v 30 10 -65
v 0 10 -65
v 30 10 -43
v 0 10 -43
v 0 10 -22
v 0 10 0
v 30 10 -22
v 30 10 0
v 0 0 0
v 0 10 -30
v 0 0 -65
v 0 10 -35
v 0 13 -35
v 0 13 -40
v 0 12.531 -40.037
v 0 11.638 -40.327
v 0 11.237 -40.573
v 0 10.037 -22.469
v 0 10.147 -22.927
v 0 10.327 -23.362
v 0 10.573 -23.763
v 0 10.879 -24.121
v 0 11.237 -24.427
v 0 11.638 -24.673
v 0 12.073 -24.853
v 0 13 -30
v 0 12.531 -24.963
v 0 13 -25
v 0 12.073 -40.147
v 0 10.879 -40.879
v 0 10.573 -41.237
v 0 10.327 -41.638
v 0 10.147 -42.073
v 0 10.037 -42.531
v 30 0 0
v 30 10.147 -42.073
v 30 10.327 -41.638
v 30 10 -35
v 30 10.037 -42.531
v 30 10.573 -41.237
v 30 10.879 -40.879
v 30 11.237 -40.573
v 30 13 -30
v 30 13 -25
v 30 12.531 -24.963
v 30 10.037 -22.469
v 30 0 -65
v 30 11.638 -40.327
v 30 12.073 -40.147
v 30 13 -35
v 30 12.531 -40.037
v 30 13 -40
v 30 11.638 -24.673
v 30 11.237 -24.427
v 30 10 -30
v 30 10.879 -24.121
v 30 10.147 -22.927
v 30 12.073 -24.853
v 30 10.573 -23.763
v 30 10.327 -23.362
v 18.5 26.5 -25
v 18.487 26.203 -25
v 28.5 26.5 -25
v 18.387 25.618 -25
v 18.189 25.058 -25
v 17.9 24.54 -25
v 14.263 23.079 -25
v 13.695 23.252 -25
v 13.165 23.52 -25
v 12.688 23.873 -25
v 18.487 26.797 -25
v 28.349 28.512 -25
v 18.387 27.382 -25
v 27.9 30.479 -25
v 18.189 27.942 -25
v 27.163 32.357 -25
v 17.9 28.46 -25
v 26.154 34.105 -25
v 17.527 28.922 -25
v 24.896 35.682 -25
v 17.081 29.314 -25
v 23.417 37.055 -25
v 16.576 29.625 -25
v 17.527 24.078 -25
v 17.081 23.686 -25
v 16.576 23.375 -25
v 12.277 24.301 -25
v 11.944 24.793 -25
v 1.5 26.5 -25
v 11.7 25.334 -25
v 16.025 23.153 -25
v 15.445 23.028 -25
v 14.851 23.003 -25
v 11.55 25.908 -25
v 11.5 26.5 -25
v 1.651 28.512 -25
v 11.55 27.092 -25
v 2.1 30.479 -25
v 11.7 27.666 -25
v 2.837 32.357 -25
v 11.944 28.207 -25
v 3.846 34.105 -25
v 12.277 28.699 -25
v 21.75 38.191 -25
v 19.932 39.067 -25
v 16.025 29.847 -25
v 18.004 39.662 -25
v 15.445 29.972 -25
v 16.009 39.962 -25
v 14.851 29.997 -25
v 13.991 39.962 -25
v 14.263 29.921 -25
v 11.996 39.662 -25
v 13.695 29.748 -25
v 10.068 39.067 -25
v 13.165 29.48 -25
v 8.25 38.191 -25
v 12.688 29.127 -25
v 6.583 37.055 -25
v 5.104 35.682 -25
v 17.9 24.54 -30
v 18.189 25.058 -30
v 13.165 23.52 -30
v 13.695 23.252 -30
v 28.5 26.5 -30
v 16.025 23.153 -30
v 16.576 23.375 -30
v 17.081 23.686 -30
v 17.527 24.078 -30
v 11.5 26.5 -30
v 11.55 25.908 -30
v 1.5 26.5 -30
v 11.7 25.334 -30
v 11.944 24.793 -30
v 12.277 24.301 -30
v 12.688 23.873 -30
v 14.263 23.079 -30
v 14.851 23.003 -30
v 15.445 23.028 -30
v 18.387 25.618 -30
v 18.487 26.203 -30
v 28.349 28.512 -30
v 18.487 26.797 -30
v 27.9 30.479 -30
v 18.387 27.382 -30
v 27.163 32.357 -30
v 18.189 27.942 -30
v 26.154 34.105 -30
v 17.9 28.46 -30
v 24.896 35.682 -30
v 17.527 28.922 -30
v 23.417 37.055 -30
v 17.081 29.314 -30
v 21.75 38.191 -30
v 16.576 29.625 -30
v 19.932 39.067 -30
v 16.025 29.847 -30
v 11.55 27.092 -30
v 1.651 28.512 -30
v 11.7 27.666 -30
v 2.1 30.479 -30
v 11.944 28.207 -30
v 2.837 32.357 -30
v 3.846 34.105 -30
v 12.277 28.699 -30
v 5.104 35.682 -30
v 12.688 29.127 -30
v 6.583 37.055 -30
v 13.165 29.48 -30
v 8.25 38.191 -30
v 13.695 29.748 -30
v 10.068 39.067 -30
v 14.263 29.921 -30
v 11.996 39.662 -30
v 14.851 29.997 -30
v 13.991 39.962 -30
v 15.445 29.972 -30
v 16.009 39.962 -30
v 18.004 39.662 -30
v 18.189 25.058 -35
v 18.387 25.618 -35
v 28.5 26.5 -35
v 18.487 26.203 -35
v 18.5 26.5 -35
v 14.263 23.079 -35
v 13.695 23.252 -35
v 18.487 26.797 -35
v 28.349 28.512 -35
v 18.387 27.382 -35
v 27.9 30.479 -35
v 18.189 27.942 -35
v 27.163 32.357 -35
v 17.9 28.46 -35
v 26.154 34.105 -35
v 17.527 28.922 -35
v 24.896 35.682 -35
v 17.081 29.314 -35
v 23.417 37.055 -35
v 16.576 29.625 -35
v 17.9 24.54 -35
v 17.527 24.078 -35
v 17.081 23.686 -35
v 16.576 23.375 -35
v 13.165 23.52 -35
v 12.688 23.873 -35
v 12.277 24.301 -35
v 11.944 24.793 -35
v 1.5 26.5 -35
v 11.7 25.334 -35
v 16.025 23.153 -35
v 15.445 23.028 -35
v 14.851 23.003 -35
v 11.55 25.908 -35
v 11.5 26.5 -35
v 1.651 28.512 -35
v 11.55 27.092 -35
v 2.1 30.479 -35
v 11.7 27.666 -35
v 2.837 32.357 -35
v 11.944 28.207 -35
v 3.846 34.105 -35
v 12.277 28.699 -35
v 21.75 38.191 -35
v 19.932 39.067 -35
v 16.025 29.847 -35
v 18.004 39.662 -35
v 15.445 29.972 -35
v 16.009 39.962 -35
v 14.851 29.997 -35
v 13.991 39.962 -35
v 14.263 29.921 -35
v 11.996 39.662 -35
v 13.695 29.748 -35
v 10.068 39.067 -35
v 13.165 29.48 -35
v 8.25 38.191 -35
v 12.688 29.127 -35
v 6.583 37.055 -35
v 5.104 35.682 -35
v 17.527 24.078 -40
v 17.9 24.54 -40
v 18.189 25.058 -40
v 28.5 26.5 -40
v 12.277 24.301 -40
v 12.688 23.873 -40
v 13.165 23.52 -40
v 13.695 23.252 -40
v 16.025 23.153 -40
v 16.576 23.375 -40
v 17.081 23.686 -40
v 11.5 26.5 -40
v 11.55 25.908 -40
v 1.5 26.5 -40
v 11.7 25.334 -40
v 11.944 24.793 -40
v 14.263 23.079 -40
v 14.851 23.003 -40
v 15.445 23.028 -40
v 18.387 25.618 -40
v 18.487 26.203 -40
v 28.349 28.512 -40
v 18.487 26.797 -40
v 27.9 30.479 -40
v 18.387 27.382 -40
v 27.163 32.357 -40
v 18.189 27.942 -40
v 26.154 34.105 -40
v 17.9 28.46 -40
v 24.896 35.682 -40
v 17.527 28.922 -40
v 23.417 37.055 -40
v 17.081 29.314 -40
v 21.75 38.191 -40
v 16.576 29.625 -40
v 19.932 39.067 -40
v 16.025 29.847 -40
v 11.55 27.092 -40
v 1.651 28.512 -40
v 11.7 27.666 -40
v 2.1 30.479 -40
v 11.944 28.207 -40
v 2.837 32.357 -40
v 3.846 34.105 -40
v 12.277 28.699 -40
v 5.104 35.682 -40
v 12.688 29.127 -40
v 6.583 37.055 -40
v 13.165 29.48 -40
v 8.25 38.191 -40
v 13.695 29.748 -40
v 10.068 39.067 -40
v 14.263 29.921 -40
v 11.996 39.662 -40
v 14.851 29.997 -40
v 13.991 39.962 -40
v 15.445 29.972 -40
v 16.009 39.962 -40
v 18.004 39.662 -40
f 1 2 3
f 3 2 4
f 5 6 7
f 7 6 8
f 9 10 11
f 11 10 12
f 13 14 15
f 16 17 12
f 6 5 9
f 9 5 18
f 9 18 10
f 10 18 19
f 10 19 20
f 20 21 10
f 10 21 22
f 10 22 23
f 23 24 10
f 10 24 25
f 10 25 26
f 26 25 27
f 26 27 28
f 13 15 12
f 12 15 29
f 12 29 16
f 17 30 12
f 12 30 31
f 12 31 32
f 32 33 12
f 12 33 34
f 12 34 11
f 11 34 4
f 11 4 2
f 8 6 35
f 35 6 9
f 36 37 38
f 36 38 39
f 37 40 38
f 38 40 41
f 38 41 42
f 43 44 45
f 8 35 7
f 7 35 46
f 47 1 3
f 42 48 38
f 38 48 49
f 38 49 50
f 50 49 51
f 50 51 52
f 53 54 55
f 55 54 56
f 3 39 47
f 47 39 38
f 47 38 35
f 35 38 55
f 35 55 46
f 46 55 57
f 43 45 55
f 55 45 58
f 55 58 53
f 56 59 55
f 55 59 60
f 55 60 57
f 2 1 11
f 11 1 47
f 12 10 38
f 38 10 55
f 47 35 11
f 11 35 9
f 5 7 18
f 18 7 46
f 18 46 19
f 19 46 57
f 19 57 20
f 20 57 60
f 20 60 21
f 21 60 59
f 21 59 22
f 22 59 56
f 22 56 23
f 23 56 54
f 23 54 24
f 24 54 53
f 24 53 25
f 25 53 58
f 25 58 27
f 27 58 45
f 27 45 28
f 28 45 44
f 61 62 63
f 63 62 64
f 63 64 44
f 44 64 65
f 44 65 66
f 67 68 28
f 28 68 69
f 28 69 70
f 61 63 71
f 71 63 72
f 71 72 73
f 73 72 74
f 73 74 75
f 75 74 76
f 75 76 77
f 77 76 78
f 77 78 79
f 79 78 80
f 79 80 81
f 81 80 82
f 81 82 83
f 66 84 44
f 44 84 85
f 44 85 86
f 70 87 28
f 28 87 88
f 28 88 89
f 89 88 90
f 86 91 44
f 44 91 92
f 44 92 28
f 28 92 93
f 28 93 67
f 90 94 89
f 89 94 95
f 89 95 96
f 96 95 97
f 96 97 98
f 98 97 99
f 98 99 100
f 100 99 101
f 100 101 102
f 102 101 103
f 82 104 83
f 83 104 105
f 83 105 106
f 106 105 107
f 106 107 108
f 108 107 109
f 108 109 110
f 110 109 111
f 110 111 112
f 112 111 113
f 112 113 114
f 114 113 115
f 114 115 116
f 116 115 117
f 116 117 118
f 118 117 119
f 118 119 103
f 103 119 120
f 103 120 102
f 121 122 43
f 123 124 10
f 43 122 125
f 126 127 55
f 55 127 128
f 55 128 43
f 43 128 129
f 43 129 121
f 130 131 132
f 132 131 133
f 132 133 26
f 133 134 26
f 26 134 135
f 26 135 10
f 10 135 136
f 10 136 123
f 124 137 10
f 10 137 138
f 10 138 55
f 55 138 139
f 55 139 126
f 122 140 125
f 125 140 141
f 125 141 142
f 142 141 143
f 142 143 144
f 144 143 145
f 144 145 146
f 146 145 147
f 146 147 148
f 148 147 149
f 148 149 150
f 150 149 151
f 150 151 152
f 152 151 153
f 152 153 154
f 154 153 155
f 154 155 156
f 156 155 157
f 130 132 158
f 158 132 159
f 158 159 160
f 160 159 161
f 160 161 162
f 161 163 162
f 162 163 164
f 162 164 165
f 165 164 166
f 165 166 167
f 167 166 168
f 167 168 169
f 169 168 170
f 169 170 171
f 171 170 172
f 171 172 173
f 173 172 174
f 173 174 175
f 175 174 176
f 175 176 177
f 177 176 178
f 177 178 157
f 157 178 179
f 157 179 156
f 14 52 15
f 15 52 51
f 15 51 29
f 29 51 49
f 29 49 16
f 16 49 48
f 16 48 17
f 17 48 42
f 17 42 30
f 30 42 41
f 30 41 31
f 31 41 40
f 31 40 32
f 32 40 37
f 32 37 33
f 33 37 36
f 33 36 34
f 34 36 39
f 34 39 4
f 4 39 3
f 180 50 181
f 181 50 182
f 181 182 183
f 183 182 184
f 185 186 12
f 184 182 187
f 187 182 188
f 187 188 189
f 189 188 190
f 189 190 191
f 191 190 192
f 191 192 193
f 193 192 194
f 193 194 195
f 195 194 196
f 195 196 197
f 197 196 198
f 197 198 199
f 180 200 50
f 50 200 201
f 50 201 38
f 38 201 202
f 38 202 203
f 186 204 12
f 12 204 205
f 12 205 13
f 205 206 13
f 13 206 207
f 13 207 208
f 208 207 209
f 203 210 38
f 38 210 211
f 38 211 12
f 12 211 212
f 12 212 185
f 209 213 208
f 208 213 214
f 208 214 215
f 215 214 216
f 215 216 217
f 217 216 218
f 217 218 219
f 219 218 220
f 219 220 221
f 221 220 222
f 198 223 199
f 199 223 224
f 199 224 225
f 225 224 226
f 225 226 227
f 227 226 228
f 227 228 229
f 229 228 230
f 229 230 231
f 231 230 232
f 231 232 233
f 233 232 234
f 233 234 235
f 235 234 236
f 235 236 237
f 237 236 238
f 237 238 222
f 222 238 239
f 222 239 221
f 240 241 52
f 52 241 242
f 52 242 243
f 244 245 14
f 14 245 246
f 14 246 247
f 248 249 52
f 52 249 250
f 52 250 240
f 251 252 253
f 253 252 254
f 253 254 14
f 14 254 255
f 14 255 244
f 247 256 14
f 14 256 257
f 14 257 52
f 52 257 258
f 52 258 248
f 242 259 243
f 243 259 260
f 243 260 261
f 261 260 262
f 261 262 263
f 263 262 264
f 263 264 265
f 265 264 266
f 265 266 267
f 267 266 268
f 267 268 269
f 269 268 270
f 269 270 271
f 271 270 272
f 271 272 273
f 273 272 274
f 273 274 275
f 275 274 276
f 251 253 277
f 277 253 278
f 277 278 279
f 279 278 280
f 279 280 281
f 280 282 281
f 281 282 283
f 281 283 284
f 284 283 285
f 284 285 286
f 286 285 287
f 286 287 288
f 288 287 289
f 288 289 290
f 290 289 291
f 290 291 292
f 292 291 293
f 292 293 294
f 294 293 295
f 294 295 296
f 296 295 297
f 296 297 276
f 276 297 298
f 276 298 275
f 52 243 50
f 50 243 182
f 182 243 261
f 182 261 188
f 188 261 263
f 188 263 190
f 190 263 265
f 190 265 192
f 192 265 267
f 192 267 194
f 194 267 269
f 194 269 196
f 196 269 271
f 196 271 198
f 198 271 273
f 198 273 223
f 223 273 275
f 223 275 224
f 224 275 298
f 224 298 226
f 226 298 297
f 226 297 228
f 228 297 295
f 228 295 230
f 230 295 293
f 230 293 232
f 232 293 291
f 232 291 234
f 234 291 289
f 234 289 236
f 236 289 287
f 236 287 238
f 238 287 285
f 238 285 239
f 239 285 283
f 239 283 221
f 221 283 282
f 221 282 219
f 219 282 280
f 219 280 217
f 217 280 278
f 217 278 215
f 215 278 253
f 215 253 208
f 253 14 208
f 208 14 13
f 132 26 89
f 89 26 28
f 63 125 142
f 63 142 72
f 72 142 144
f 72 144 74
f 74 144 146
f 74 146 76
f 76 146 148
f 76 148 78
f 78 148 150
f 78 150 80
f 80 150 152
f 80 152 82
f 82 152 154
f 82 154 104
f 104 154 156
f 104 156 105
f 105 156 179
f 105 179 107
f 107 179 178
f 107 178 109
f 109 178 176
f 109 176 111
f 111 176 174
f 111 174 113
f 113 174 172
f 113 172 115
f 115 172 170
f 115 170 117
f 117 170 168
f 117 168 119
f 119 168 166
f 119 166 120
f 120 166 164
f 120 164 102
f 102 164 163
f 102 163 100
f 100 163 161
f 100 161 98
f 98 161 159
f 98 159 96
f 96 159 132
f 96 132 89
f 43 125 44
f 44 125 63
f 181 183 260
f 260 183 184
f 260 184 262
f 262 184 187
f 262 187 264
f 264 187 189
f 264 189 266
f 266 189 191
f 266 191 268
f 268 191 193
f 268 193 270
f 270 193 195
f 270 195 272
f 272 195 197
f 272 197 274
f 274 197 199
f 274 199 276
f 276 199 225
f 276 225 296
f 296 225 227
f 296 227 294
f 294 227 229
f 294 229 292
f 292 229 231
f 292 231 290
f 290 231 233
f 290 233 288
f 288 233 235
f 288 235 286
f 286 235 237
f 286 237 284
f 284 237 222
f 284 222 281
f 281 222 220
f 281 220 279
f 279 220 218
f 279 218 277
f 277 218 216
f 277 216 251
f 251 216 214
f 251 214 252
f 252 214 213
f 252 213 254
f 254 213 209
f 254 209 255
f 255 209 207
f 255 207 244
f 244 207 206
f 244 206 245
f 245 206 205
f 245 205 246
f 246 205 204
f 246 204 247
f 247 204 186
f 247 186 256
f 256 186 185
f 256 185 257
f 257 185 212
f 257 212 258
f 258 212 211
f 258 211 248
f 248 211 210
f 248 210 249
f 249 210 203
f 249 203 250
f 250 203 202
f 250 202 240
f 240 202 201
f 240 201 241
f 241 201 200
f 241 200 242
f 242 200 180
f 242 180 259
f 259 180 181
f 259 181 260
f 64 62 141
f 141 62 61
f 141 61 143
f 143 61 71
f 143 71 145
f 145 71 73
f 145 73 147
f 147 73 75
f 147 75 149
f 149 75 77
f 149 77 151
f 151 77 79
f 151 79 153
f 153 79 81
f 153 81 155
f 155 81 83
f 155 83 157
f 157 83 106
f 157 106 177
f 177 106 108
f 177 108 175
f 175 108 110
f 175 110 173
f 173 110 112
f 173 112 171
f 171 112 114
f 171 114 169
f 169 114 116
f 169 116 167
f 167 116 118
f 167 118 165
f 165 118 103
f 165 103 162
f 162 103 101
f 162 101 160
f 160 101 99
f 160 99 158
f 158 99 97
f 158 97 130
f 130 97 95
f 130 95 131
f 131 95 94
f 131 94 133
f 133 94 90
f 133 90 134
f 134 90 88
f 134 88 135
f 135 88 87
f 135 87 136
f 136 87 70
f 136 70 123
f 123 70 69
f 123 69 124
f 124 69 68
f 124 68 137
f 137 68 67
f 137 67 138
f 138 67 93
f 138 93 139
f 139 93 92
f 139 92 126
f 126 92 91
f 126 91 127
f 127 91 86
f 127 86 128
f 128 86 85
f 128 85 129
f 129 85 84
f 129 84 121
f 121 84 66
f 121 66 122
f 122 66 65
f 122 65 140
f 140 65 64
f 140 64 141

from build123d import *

# Parameters (mm, degrees)
SKETCH2_W           = 30
SKETCH2_H           = 65
BOSS_EXTRUDE1_DEPTH = 10
BOSS_EXTRUDE2_DEPTH = 30
CUT_EXTRUDE1_DEPTH  = 65.031242374
SKETCH6_R           = 3.5
CUT_EXTRUDE2_DEPTH  = 65.031242374


with BuildPart() as part:
    # Sketch2 → Boss-Extrude1 (new body)
    with BuildSketch(Plane(origin=(0, 0, 0), x_dir=(1, 0, 0), z_dir=(0, 1, 0))):
        with Locations((15, 32.5)):
            Rectangle(SKETCH2_W, SKETCH2_H)
    extrude(amount=BOSS_EXTRUDE1_DEPTH)

    # Sketch4 → Boss-Extrude2 (add)
    with BuildSketch(Plane(origin=(30, 0, 0), x_dir=(0, 0, -1), z_dir=(1, 0, 0))):
        with BuildLine():
            Line((30, 10), (30, 40))
            Line((30, 40), (25, 40))
            Line((25, 40), (25, 13))
            ThreePointArc((25, 13), (24.121320344, 10.878679656), (22, 10))
            Line((22, 10), (30, 10))
        make_face()
        with BuildLine():
            Line((43, 10), (35, 10))
            Line((35, 10), (35, 40))
            Line((35, 40), (40, 40))
            Line((40, 40), (40, 13))
            ThreePointArc((40, 13), (40.878679656, 10.878679656), (43, 10))
        make_face()
    extrude(amount=-BOSS_EXTRUDE2_DEPTH)

    # Sketch5 → Cut-Extrude1 (cut, through all)
    with BuildSketch(Plane(origin=(0, 0, -40), x_dir=(-1, 0, 0), z_dir=(0, 0, -1))):
        with BuildLine():
            Line((0, 13), (0, 40))
            Line((0, 40), (0, 41.88167297))
            Line((0, 41.88167297), (-30, 41.88167297))
            Line((-30, 41.88167297), (-30, 40))
            Line((-30, 40), (-30, 13))
            Line((-30, 13), (-28.5, 26.5))
            ThreePointArc((-28.5, 26.5), (-15, 40), (-1.5, 26.5))
            Line((-1.5, 26.5), (0, 13))
        make_face()
    extrude(amount=-CUT_EXTRUDE1_DEPTH, mode=Mode.SUBTRACT)

    # Sketch6 → Cut-Extrude2 (cut, through all)
    with BuildSketch(Plane(origin=(0, 0, -40), x_dir=(-1, 0, 0), z_dir=(0, 0, -1))):
        with Locations((-15, 26.5)):
            Circle(SKETCH6_R)
    extrude(amount=-CUT_EXTRUDE2_DEPTH, mode=Mode.SUBTRACT)


solid = part.part
